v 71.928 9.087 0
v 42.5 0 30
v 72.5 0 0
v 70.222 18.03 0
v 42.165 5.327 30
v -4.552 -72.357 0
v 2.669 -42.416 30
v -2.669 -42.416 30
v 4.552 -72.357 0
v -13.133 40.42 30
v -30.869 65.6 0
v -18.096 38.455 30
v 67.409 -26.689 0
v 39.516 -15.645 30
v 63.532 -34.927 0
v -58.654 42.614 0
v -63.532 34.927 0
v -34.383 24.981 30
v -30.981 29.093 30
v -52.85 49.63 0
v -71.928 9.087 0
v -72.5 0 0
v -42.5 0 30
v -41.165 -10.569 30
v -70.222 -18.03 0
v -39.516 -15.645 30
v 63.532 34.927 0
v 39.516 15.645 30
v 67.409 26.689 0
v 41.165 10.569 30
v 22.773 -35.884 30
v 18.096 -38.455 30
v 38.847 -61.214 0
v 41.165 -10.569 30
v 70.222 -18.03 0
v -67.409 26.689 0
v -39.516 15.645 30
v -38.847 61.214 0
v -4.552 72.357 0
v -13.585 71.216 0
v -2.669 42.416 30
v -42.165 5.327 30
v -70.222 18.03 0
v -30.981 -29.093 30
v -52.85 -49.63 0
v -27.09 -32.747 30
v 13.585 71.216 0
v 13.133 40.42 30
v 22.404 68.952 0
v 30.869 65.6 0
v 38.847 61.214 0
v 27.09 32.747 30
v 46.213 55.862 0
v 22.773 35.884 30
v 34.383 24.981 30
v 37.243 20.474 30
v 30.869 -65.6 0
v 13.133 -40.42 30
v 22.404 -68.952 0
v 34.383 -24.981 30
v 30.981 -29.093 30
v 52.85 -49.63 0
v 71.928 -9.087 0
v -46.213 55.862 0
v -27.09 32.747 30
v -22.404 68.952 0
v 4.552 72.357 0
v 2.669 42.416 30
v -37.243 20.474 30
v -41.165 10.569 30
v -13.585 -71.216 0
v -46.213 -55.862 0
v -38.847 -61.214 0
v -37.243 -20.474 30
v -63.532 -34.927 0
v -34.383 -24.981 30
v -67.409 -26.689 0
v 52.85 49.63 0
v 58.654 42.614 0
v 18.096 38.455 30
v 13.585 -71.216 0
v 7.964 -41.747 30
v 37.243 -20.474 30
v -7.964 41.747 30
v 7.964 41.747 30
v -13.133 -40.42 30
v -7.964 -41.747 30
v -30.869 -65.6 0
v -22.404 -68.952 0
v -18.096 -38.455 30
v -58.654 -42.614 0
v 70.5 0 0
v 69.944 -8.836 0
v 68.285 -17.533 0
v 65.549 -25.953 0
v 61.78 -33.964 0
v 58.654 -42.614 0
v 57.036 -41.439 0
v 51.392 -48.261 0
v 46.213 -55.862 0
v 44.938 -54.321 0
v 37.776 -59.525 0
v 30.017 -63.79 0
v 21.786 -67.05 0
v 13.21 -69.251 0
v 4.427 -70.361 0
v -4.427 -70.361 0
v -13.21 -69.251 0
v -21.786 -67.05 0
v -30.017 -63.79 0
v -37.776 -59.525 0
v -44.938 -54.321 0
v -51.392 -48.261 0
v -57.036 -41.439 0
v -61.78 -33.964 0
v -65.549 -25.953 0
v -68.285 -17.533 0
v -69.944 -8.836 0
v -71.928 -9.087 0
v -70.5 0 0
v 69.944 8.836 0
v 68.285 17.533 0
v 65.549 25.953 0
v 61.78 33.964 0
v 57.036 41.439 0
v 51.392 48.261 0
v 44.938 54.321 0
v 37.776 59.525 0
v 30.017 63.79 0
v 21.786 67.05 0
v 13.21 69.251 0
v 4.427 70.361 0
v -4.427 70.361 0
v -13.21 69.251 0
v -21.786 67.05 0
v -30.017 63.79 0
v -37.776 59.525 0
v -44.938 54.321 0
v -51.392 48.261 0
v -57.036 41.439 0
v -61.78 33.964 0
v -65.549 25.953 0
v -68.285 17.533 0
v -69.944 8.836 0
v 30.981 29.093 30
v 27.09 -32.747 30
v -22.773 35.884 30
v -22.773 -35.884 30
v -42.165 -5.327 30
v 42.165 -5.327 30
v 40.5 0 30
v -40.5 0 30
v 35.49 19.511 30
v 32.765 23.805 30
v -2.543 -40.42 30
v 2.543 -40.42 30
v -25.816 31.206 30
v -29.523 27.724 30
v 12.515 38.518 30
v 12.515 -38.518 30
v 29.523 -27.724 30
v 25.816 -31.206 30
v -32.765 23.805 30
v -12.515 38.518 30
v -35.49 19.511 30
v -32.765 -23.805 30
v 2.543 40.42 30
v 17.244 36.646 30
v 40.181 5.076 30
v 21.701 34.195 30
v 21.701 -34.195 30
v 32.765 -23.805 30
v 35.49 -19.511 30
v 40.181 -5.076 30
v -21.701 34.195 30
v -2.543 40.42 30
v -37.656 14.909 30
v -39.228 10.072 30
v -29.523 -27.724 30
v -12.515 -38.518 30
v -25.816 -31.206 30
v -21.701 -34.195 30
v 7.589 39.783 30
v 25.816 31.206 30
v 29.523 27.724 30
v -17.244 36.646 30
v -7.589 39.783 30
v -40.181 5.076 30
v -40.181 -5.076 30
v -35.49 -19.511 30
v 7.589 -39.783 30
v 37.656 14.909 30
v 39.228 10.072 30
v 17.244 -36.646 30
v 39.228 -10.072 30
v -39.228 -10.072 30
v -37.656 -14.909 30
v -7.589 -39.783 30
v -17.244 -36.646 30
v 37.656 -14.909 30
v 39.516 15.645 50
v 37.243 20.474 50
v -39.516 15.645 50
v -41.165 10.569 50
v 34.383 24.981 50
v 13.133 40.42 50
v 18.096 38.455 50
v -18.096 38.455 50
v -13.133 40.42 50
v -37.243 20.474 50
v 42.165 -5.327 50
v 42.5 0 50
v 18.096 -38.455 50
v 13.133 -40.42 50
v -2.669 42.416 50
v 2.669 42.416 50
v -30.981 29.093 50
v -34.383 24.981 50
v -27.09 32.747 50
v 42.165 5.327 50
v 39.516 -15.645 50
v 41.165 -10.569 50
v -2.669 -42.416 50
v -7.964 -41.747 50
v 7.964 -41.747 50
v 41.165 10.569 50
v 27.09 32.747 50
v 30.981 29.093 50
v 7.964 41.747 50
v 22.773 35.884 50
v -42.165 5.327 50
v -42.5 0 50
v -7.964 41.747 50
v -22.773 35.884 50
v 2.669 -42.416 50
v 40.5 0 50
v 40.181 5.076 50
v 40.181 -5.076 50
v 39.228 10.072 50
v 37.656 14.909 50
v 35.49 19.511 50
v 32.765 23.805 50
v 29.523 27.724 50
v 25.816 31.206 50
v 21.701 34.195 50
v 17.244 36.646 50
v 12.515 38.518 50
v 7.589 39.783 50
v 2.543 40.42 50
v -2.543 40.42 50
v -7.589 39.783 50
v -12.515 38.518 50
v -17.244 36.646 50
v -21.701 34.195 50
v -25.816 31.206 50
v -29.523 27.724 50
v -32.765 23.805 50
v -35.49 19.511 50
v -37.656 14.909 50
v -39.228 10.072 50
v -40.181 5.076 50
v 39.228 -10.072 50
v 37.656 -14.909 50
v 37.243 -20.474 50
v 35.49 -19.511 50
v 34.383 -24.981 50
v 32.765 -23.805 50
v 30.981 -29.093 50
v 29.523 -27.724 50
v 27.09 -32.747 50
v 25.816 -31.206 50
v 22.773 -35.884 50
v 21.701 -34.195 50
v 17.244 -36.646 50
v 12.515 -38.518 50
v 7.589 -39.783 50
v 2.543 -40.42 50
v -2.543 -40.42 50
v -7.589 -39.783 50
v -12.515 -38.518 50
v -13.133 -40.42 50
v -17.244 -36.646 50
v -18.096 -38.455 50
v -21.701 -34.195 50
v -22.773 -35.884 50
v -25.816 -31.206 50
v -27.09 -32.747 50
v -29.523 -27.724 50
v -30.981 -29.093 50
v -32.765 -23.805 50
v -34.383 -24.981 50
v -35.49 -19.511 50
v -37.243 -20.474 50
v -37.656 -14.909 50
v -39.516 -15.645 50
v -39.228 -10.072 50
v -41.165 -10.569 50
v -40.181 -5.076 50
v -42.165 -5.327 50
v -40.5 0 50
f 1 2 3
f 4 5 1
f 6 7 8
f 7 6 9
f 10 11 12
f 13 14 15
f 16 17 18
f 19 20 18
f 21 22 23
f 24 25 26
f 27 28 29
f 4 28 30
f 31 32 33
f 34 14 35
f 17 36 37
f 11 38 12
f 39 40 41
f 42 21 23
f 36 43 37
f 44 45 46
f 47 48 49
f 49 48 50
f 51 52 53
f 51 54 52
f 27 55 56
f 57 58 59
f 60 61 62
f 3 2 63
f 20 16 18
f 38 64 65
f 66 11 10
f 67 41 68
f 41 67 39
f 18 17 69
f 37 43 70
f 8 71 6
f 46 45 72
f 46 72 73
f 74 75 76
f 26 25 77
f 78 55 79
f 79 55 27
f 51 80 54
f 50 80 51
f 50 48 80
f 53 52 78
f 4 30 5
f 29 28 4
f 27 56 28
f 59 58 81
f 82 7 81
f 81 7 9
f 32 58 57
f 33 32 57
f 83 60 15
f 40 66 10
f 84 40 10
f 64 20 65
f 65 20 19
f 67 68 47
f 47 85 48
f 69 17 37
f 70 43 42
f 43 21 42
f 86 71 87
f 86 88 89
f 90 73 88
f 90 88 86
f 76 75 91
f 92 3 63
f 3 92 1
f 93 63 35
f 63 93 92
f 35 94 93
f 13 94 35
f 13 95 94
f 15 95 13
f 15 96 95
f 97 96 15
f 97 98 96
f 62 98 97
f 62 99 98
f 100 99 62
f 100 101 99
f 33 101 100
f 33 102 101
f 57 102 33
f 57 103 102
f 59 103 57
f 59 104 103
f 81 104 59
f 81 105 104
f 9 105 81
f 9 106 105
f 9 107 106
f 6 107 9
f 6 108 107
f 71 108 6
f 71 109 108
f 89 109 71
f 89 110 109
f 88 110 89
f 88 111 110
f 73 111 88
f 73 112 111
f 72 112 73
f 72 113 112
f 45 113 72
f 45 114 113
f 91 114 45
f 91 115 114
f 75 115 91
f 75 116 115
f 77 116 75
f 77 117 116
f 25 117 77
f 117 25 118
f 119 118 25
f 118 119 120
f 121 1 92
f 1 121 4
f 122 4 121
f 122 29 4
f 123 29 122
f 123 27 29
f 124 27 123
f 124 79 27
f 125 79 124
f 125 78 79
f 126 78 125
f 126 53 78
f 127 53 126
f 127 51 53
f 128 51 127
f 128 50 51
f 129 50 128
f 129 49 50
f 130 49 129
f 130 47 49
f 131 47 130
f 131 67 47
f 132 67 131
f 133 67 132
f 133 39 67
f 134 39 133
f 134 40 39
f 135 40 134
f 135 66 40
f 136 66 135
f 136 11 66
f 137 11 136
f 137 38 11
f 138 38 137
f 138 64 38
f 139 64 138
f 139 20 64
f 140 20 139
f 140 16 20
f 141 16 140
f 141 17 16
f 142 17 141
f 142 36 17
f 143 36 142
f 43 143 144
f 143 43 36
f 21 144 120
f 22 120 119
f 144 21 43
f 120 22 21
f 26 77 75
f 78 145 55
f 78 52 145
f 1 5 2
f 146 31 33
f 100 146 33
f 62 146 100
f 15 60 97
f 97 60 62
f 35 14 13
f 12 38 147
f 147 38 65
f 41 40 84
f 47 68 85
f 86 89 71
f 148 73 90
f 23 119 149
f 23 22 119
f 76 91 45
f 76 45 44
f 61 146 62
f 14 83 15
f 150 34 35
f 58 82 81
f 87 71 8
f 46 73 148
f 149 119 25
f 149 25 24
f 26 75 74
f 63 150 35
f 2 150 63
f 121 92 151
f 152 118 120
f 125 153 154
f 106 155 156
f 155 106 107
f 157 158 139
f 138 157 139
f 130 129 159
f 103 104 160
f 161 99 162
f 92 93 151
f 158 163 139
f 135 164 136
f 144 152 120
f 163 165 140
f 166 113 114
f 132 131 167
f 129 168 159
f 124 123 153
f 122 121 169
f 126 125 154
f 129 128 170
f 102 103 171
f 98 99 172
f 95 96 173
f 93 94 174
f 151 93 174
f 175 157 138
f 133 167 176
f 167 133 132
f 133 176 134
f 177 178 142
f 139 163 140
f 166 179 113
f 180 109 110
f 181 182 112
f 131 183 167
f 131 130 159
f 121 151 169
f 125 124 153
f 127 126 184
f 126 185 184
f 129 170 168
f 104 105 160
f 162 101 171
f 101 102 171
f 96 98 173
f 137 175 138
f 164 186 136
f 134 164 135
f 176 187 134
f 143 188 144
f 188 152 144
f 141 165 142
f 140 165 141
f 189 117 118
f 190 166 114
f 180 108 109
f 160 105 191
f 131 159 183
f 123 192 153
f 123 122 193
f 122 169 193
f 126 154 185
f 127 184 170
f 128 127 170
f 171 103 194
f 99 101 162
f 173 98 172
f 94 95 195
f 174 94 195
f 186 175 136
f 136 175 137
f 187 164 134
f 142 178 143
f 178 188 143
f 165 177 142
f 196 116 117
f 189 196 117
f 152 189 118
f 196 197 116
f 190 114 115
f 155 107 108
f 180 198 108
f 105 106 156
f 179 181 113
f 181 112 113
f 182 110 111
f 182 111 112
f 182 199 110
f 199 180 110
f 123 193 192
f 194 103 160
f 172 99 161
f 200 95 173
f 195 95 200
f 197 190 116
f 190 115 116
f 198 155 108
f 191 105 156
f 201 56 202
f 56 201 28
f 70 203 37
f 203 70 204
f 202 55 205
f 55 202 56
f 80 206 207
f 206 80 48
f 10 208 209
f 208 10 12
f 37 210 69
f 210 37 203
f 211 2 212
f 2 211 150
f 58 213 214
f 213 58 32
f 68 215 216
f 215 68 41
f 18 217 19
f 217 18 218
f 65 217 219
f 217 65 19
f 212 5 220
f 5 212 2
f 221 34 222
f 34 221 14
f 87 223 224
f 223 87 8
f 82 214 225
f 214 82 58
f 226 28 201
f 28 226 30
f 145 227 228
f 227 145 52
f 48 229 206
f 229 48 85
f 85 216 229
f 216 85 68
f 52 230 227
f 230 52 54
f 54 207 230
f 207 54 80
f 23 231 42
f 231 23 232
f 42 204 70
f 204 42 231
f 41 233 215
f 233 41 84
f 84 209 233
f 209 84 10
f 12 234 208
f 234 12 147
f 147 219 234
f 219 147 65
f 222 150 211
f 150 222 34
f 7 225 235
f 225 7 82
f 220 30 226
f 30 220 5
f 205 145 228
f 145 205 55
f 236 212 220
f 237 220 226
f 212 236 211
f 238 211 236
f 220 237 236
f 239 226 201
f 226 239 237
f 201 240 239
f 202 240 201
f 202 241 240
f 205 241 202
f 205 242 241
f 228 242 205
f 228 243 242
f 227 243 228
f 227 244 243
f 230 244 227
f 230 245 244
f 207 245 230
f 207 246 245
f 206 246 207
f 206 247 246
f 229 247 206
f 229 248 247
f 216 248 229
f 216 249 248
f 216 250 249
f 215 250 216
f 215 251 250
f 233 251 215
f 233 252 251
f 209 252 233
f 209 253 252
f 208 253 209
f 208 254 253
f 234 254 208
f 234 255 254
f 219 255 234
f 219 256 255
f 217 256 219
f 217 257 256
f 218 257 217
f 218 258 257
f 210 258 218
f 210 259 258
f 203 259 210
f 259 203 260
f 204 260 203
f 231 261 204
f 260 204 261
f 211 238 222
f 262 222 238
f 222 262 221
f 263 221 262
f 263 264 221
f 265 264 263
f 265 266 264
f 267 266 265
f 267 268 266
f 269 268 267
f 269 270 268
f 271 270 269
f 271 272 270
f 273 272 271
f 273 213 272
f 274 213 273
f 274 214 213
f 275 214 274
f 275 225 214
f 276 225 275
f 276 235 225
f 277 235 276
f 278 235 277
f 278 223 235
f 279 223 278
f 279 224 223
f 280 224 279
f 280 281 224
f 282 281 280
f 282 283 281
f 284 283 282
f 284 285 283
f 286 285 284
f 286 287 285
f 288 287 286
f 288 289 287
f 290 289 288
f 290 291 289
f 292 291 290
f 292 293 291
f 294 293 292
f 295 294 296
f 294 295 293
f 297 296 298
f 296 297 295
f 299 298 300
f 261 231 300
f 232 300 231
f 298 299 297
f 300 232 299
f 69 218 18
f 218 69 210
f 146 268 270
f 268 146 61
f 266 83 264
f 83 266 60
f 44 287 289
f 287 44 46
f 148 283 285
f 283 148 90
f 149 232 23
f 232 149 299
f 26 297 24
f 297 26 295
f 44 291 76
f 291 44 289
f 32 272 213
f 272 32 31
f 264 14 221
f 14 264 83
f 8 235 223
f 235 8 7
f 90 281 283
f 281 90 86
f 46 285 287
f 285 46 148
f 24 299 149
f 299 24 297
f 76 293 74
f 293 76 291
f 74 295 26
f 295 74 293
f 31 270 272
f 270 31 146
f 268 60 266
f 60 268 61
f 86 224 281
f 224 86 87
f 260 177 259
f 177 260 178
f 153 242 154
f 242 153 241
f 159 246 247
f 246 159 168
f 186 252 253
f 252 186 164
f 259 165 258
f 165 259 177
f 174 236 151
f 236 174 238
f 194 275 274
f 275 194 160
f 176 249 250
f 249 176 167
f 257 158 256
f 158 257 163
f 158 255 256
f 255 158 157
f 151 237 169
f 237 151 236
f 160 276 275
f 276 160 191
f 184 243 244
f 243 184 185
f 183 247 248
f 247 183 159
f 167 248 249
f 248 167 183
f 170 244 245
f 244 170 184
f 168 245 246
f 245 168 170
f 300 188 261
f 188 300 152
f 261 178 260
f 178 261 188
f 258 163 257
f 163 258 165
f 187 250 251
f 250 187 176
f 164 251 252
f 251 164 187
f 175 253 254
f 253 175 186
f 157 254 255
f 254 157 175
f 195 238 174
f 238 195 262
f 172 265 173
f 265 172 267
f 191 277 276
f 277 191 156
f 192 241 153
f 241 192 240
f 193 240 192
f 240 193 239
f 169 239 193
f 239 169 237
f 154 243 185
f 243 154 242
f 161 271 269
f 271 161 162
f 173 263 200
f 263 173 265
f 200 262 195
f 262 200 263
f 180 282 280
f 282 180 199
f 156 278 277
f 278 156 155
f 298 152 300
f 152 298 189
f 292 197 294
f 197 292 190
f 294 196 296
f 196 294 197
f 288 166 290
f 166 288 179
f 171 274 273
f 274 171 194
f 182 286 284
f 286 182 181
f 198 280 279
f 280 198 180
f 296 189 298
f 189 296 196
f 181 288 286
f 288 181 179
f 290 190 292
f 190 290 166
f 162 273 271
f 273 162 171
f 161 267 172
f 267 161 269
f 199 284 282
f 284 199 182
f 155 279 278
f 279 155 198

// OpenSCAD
$fn = 50;


difference() {
	union() {
		translate(v = [0, 0, 0]) {
			rotate(a = [0, 0, 0]) {
				difference() {
					union() {
						cylinder(h = 30, r1 = 72.5000000000, r2 = 42.5000000000);
					}
					union() {
						cylinder(h = 30, r1 = 70.5000000000, r2 = 40.5000000000);
					}
				}
			}
		}
		translate(v = [0, 0, 30]) {
			rotate(a = [0, 0, 0]) {
				difference() {
					union() {
						cylinder(h = 20, r = 42.5000000000);
					}
					union() {
						cylinder(h = 20, r = 40.5000000000);
					}
				}
			}
		}
	}
	union();
}
